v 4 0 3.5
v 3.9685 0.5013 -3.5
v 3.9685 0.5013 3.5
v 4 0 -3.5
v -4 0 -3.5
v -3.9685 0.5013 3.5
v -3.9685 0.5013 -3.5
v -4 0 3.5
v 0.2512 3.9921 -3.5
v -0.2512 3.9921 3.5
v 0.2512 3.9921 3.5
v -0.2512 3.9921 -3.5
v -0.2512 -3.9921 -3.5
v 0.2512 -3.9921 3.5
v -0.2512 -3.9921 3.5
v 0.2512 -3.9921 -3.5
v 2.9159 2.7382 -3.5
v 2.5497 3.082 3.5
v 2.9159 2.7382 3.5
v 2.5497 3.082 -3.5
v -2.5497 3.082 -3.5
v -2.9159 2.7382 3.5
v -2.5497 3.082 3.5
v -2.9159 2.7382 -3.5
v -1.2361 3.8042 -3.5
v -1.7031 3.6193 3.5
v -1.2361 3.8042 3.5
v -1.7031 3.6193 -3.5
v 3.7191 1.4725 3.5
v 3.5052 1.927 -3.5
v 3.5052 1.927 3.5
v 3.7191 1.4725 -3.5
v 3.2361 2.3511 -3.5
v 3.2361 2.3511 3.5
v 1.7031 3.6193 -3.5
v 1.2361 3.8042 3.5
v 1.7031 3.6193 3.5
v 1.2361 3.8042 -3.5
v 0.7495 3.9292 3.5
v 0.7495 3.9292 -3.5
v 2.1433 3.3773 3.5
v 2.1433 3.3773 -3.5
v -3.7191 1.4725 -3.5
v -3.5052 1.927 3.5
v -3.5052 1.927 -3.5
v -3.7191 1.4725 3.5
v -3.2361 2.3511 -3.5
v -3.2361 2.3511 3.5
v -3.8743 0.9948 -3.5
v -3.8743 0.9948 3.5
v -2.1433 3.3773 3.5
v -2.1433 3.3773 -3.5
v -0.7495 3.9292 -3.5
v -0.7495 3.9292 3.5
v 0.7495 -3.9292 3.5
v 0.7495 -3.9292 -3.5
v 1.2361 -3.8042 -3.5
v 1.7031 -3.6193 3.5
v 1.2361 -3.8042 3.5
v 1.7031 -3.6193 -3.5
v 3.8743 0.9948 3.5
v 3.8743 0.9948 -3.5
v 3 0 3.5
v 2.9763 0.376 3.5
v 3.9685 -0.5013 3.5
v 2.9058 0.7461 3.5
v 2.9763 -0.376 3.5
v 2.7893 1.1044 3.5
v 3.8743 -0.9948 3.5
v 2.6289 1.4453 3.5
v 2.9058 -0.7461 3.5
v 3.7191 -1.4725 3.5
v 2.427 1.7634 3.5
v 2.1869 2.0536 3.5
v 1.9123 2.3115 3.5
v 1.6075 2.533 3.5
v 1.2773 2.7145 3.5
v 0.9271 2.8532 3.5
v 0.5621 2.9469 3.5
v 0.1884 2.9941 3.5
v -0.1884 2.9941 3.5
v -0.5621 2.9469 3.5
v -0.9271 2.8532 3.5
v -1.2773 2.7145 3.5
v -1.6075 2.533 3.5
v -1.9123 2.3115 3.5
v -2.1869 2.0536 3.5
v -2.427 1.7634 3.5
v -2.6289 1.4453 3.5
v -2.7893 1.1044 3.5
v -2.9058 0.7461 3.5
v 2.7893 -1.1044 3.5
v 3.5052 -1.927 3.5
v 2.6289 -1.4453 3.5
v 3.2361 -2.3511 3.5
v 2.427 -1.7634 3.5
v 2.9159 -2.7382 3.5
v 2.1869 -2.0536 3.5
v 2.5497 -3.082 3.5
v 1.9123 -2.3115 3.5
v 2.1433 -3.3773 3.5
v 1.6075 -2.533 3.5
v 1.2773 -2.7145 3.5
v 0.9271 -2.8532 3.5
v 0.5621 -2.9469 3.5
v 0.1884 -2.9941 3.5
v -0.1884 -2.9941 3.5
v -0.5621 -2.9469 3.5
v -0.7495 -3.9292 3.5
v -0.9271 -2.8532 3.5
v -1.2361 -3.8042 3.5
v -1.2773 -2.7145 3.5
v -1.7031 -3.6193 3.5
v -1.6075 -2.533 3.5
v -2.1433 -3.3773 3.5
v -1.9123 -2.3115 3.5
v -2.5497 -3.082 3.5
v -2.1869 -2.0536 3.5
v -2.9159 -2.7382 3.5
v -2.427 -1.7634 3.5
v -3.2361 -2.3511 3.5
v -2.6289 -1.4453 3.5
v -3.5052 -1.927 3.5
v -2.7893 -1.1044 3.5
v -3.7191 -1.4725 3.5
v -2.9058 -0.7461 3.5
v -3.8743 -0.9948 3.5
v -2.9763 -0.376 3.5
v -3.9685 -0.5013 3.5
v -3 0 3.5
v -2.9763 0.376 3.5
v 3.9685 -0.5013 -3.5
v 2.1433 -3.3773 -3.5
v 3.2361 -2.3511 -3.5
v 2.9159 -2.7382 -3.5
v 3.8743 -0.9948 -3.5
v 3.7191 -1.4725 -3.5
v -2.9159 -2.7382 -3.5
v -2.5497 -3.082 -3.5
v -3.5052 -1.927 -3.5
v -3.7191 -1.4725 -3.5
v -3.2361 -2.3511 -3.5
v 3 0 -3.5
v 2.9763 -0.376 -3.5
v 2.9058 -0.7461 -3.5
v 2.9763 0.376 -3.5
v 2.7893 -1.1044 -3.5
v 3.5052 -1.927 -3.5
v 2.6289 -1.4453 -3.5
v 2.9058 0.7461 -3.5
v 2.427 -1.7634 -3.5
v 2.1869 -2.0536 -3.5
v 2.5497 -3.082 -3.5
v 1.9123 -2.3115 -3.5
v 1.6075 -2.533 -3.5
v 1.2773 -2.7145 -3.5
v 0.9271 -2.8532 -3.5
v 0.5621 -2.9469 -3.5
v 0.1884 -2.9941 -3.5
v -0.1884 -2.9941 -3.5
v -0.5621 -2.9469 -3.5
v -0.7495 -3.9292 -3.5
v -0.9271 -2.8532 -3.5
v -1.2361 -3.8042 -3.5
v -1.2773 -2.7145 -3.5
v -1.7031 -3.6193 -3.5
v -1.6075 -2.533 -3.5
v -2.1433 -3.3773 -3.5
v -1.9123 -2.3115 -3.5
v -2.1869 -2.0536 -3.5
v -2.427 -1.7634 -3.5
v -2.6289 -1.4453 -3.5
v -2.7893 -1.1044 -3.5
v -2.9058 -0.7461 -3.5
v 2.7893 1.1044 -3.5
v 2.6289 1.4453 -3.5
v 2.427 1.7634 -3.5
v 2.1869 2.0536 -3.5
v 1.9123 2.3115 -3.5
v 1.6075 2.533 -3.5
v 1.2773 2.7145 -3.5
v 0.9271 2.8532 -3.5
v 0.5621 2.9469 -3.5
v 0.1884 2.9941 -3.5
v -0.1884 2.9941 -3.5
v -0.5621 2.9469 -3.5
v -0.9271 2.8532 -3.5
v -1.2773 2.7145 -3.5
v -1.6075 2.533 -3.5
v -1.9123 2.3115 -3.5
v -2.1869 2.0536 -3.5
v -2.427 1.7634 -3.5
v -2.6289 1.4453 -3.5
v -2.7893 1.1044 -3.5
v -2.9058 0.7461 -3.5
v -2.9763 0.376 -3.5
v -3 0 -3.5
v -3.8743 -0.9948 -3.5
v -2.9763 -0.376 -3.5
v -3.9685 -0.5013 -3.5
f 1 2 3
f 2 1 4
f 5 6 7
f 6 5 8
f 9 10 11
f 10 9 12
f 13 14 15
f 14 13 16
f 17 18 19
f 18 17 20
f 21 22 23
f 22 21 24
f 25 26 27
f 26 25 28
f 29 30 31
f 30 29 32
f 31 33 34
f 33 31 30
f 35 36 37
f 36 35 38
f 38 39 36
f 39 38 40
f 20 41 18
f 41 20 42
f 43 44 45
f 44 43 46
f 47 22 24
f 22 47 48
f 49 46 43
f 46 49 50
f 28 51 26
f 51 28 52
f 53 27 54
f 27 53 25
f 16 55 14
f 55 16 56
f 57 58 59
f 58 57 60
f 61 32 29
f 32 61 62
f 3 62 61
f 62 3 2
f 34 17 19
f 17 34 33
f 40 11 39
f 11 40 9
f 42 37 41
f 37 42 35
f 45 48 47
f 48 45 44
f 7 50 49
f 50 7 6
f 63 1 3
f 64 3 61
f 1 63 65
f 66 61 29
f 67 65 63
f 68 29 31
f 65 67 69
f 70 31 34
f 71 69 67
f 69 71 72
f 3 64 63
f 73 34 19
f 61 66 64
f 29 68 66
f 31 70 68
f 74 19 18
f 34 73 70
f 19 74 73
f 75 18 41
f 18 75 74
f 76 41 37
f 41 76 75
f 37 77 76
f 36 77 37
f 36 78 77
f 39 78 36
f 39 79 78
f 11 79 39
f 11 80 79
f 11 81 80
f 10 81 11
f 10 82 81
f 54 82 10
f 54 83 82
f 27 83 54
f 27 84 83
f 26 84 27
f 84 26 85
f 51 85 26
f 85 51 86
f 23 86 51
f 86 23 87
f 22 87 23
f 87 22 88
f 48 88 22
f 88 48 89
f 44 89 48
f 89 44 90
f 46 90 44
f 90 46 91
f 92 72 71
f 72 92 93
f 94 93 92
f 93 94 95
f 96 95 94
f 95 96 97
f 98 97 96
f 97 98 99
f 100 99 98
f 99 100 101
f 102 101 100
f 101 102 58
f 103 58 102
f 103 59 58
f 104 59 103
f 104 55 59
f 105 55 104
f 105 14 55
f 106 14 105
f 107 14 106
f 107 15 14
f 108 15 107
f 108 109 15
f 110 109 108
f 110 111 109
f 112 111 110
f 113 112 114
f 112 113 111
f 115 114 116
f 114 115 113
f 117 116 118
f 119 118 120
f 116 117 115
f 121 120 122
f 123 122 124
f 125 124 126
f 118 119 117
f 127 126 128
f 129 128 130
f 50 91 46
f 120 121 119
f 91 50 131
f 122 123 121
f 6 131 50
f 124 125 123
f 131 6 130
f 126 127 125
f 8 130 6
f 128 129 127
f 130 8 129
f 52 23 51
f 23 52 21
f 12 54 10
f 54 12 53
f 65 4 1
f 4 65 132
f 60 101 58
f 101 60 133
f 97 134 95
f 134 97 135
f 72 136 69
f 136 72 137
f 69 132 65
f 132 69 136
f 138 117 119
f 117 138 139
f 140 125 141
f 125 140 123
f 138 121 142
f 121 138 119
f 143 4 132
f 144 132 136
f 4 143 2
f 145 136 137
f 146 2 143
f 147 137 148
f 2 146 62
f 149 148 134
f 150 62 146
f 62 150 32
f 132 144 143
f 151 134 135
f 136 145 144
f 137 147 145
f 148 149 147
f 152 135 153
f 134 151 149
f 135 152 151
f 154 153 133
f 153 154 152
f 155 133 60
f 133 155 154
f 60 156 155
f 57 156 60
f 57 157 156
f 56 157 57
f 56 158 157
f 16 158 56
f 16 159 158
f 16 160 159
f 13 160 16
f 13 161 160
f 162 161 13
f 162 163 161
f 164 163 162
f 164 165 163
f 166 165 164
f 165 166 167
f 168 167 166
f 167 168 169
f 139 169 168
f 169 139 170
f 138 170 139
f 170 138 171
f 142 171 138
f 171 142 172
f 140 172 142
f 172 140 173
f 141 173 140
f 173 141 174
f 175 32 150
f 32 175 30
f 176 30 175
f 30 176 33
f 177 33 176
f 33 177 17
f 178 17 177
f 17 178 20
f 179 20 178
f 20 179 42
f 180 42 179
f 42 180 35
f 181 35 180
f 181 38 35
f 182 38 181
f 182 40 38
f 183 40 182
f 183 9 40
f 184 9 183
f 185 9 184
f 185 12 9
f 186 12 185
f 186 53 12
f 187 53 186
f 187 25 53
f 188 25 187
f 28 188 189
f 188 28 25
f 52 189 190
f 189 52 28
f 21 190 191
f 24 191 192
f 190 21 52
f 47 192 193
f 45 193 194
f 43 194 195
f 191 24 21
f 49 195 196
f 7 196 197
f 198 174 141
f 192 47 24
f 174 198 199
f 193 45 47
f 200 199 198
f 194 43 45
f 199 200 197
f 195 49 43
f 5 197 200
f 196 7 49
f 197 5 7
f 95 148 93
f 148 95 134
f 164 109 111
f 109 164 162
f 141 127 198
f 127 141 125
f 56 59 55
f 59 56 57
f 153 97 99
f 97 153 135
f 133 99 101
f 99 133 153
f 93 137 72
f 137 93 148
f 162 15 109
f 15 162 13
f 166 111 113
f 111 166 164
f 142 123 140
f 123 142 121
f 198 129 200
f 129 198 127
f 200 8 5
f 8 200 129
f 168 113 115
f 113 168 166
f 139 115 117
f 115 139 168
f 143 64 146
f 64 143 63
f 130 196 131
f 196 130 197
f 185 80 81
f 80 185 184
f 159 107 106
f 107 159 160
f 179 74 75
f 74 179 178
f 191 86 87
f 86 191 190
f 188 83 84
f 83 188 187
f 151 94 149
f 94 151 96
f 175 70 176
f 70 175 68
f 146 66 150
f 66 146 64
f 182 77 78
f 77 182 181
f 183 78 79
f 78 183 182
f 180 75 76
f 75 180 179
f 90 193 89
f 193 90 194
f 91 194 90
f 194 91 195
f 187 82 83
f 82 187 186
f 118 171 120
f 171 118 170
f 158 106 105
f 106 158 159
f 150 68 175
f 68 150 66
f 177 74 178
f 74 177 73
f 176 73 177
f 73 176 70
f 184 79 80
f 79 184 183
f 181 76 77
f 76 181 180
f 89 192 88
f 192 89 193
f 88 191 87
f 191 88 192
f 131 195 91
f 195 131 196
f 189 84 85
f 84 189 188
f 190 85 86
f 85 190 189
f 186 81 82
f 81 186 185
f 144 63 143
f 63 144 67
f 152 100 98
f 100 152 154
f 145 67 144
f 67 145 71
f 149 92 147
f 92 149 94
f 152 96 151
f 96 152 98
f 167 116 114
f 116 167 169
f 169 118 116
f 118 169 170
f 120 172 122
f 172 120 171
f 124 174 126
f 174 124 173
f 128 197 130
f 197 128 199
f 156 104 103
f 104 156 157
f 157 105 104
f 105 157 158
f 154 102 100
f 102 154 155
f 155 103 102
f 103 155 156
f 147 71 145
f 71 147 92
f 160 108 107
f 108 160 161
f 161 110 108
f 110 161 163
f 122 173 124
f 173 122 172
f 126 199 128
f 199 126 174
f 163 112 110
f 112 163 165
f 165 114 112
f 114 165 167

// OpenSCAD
$fn = 50;


difference() {
	union() {
		translate(v = [0, 0, -3.5000000000]) {
			cylinder(h = 7, r = 4.0000000000);
		}
	}
	union() {
		translate(v = [0, 0, -100.0000000000]) {
			cylinder(h = 200, r = 3);
		}
	}
}
